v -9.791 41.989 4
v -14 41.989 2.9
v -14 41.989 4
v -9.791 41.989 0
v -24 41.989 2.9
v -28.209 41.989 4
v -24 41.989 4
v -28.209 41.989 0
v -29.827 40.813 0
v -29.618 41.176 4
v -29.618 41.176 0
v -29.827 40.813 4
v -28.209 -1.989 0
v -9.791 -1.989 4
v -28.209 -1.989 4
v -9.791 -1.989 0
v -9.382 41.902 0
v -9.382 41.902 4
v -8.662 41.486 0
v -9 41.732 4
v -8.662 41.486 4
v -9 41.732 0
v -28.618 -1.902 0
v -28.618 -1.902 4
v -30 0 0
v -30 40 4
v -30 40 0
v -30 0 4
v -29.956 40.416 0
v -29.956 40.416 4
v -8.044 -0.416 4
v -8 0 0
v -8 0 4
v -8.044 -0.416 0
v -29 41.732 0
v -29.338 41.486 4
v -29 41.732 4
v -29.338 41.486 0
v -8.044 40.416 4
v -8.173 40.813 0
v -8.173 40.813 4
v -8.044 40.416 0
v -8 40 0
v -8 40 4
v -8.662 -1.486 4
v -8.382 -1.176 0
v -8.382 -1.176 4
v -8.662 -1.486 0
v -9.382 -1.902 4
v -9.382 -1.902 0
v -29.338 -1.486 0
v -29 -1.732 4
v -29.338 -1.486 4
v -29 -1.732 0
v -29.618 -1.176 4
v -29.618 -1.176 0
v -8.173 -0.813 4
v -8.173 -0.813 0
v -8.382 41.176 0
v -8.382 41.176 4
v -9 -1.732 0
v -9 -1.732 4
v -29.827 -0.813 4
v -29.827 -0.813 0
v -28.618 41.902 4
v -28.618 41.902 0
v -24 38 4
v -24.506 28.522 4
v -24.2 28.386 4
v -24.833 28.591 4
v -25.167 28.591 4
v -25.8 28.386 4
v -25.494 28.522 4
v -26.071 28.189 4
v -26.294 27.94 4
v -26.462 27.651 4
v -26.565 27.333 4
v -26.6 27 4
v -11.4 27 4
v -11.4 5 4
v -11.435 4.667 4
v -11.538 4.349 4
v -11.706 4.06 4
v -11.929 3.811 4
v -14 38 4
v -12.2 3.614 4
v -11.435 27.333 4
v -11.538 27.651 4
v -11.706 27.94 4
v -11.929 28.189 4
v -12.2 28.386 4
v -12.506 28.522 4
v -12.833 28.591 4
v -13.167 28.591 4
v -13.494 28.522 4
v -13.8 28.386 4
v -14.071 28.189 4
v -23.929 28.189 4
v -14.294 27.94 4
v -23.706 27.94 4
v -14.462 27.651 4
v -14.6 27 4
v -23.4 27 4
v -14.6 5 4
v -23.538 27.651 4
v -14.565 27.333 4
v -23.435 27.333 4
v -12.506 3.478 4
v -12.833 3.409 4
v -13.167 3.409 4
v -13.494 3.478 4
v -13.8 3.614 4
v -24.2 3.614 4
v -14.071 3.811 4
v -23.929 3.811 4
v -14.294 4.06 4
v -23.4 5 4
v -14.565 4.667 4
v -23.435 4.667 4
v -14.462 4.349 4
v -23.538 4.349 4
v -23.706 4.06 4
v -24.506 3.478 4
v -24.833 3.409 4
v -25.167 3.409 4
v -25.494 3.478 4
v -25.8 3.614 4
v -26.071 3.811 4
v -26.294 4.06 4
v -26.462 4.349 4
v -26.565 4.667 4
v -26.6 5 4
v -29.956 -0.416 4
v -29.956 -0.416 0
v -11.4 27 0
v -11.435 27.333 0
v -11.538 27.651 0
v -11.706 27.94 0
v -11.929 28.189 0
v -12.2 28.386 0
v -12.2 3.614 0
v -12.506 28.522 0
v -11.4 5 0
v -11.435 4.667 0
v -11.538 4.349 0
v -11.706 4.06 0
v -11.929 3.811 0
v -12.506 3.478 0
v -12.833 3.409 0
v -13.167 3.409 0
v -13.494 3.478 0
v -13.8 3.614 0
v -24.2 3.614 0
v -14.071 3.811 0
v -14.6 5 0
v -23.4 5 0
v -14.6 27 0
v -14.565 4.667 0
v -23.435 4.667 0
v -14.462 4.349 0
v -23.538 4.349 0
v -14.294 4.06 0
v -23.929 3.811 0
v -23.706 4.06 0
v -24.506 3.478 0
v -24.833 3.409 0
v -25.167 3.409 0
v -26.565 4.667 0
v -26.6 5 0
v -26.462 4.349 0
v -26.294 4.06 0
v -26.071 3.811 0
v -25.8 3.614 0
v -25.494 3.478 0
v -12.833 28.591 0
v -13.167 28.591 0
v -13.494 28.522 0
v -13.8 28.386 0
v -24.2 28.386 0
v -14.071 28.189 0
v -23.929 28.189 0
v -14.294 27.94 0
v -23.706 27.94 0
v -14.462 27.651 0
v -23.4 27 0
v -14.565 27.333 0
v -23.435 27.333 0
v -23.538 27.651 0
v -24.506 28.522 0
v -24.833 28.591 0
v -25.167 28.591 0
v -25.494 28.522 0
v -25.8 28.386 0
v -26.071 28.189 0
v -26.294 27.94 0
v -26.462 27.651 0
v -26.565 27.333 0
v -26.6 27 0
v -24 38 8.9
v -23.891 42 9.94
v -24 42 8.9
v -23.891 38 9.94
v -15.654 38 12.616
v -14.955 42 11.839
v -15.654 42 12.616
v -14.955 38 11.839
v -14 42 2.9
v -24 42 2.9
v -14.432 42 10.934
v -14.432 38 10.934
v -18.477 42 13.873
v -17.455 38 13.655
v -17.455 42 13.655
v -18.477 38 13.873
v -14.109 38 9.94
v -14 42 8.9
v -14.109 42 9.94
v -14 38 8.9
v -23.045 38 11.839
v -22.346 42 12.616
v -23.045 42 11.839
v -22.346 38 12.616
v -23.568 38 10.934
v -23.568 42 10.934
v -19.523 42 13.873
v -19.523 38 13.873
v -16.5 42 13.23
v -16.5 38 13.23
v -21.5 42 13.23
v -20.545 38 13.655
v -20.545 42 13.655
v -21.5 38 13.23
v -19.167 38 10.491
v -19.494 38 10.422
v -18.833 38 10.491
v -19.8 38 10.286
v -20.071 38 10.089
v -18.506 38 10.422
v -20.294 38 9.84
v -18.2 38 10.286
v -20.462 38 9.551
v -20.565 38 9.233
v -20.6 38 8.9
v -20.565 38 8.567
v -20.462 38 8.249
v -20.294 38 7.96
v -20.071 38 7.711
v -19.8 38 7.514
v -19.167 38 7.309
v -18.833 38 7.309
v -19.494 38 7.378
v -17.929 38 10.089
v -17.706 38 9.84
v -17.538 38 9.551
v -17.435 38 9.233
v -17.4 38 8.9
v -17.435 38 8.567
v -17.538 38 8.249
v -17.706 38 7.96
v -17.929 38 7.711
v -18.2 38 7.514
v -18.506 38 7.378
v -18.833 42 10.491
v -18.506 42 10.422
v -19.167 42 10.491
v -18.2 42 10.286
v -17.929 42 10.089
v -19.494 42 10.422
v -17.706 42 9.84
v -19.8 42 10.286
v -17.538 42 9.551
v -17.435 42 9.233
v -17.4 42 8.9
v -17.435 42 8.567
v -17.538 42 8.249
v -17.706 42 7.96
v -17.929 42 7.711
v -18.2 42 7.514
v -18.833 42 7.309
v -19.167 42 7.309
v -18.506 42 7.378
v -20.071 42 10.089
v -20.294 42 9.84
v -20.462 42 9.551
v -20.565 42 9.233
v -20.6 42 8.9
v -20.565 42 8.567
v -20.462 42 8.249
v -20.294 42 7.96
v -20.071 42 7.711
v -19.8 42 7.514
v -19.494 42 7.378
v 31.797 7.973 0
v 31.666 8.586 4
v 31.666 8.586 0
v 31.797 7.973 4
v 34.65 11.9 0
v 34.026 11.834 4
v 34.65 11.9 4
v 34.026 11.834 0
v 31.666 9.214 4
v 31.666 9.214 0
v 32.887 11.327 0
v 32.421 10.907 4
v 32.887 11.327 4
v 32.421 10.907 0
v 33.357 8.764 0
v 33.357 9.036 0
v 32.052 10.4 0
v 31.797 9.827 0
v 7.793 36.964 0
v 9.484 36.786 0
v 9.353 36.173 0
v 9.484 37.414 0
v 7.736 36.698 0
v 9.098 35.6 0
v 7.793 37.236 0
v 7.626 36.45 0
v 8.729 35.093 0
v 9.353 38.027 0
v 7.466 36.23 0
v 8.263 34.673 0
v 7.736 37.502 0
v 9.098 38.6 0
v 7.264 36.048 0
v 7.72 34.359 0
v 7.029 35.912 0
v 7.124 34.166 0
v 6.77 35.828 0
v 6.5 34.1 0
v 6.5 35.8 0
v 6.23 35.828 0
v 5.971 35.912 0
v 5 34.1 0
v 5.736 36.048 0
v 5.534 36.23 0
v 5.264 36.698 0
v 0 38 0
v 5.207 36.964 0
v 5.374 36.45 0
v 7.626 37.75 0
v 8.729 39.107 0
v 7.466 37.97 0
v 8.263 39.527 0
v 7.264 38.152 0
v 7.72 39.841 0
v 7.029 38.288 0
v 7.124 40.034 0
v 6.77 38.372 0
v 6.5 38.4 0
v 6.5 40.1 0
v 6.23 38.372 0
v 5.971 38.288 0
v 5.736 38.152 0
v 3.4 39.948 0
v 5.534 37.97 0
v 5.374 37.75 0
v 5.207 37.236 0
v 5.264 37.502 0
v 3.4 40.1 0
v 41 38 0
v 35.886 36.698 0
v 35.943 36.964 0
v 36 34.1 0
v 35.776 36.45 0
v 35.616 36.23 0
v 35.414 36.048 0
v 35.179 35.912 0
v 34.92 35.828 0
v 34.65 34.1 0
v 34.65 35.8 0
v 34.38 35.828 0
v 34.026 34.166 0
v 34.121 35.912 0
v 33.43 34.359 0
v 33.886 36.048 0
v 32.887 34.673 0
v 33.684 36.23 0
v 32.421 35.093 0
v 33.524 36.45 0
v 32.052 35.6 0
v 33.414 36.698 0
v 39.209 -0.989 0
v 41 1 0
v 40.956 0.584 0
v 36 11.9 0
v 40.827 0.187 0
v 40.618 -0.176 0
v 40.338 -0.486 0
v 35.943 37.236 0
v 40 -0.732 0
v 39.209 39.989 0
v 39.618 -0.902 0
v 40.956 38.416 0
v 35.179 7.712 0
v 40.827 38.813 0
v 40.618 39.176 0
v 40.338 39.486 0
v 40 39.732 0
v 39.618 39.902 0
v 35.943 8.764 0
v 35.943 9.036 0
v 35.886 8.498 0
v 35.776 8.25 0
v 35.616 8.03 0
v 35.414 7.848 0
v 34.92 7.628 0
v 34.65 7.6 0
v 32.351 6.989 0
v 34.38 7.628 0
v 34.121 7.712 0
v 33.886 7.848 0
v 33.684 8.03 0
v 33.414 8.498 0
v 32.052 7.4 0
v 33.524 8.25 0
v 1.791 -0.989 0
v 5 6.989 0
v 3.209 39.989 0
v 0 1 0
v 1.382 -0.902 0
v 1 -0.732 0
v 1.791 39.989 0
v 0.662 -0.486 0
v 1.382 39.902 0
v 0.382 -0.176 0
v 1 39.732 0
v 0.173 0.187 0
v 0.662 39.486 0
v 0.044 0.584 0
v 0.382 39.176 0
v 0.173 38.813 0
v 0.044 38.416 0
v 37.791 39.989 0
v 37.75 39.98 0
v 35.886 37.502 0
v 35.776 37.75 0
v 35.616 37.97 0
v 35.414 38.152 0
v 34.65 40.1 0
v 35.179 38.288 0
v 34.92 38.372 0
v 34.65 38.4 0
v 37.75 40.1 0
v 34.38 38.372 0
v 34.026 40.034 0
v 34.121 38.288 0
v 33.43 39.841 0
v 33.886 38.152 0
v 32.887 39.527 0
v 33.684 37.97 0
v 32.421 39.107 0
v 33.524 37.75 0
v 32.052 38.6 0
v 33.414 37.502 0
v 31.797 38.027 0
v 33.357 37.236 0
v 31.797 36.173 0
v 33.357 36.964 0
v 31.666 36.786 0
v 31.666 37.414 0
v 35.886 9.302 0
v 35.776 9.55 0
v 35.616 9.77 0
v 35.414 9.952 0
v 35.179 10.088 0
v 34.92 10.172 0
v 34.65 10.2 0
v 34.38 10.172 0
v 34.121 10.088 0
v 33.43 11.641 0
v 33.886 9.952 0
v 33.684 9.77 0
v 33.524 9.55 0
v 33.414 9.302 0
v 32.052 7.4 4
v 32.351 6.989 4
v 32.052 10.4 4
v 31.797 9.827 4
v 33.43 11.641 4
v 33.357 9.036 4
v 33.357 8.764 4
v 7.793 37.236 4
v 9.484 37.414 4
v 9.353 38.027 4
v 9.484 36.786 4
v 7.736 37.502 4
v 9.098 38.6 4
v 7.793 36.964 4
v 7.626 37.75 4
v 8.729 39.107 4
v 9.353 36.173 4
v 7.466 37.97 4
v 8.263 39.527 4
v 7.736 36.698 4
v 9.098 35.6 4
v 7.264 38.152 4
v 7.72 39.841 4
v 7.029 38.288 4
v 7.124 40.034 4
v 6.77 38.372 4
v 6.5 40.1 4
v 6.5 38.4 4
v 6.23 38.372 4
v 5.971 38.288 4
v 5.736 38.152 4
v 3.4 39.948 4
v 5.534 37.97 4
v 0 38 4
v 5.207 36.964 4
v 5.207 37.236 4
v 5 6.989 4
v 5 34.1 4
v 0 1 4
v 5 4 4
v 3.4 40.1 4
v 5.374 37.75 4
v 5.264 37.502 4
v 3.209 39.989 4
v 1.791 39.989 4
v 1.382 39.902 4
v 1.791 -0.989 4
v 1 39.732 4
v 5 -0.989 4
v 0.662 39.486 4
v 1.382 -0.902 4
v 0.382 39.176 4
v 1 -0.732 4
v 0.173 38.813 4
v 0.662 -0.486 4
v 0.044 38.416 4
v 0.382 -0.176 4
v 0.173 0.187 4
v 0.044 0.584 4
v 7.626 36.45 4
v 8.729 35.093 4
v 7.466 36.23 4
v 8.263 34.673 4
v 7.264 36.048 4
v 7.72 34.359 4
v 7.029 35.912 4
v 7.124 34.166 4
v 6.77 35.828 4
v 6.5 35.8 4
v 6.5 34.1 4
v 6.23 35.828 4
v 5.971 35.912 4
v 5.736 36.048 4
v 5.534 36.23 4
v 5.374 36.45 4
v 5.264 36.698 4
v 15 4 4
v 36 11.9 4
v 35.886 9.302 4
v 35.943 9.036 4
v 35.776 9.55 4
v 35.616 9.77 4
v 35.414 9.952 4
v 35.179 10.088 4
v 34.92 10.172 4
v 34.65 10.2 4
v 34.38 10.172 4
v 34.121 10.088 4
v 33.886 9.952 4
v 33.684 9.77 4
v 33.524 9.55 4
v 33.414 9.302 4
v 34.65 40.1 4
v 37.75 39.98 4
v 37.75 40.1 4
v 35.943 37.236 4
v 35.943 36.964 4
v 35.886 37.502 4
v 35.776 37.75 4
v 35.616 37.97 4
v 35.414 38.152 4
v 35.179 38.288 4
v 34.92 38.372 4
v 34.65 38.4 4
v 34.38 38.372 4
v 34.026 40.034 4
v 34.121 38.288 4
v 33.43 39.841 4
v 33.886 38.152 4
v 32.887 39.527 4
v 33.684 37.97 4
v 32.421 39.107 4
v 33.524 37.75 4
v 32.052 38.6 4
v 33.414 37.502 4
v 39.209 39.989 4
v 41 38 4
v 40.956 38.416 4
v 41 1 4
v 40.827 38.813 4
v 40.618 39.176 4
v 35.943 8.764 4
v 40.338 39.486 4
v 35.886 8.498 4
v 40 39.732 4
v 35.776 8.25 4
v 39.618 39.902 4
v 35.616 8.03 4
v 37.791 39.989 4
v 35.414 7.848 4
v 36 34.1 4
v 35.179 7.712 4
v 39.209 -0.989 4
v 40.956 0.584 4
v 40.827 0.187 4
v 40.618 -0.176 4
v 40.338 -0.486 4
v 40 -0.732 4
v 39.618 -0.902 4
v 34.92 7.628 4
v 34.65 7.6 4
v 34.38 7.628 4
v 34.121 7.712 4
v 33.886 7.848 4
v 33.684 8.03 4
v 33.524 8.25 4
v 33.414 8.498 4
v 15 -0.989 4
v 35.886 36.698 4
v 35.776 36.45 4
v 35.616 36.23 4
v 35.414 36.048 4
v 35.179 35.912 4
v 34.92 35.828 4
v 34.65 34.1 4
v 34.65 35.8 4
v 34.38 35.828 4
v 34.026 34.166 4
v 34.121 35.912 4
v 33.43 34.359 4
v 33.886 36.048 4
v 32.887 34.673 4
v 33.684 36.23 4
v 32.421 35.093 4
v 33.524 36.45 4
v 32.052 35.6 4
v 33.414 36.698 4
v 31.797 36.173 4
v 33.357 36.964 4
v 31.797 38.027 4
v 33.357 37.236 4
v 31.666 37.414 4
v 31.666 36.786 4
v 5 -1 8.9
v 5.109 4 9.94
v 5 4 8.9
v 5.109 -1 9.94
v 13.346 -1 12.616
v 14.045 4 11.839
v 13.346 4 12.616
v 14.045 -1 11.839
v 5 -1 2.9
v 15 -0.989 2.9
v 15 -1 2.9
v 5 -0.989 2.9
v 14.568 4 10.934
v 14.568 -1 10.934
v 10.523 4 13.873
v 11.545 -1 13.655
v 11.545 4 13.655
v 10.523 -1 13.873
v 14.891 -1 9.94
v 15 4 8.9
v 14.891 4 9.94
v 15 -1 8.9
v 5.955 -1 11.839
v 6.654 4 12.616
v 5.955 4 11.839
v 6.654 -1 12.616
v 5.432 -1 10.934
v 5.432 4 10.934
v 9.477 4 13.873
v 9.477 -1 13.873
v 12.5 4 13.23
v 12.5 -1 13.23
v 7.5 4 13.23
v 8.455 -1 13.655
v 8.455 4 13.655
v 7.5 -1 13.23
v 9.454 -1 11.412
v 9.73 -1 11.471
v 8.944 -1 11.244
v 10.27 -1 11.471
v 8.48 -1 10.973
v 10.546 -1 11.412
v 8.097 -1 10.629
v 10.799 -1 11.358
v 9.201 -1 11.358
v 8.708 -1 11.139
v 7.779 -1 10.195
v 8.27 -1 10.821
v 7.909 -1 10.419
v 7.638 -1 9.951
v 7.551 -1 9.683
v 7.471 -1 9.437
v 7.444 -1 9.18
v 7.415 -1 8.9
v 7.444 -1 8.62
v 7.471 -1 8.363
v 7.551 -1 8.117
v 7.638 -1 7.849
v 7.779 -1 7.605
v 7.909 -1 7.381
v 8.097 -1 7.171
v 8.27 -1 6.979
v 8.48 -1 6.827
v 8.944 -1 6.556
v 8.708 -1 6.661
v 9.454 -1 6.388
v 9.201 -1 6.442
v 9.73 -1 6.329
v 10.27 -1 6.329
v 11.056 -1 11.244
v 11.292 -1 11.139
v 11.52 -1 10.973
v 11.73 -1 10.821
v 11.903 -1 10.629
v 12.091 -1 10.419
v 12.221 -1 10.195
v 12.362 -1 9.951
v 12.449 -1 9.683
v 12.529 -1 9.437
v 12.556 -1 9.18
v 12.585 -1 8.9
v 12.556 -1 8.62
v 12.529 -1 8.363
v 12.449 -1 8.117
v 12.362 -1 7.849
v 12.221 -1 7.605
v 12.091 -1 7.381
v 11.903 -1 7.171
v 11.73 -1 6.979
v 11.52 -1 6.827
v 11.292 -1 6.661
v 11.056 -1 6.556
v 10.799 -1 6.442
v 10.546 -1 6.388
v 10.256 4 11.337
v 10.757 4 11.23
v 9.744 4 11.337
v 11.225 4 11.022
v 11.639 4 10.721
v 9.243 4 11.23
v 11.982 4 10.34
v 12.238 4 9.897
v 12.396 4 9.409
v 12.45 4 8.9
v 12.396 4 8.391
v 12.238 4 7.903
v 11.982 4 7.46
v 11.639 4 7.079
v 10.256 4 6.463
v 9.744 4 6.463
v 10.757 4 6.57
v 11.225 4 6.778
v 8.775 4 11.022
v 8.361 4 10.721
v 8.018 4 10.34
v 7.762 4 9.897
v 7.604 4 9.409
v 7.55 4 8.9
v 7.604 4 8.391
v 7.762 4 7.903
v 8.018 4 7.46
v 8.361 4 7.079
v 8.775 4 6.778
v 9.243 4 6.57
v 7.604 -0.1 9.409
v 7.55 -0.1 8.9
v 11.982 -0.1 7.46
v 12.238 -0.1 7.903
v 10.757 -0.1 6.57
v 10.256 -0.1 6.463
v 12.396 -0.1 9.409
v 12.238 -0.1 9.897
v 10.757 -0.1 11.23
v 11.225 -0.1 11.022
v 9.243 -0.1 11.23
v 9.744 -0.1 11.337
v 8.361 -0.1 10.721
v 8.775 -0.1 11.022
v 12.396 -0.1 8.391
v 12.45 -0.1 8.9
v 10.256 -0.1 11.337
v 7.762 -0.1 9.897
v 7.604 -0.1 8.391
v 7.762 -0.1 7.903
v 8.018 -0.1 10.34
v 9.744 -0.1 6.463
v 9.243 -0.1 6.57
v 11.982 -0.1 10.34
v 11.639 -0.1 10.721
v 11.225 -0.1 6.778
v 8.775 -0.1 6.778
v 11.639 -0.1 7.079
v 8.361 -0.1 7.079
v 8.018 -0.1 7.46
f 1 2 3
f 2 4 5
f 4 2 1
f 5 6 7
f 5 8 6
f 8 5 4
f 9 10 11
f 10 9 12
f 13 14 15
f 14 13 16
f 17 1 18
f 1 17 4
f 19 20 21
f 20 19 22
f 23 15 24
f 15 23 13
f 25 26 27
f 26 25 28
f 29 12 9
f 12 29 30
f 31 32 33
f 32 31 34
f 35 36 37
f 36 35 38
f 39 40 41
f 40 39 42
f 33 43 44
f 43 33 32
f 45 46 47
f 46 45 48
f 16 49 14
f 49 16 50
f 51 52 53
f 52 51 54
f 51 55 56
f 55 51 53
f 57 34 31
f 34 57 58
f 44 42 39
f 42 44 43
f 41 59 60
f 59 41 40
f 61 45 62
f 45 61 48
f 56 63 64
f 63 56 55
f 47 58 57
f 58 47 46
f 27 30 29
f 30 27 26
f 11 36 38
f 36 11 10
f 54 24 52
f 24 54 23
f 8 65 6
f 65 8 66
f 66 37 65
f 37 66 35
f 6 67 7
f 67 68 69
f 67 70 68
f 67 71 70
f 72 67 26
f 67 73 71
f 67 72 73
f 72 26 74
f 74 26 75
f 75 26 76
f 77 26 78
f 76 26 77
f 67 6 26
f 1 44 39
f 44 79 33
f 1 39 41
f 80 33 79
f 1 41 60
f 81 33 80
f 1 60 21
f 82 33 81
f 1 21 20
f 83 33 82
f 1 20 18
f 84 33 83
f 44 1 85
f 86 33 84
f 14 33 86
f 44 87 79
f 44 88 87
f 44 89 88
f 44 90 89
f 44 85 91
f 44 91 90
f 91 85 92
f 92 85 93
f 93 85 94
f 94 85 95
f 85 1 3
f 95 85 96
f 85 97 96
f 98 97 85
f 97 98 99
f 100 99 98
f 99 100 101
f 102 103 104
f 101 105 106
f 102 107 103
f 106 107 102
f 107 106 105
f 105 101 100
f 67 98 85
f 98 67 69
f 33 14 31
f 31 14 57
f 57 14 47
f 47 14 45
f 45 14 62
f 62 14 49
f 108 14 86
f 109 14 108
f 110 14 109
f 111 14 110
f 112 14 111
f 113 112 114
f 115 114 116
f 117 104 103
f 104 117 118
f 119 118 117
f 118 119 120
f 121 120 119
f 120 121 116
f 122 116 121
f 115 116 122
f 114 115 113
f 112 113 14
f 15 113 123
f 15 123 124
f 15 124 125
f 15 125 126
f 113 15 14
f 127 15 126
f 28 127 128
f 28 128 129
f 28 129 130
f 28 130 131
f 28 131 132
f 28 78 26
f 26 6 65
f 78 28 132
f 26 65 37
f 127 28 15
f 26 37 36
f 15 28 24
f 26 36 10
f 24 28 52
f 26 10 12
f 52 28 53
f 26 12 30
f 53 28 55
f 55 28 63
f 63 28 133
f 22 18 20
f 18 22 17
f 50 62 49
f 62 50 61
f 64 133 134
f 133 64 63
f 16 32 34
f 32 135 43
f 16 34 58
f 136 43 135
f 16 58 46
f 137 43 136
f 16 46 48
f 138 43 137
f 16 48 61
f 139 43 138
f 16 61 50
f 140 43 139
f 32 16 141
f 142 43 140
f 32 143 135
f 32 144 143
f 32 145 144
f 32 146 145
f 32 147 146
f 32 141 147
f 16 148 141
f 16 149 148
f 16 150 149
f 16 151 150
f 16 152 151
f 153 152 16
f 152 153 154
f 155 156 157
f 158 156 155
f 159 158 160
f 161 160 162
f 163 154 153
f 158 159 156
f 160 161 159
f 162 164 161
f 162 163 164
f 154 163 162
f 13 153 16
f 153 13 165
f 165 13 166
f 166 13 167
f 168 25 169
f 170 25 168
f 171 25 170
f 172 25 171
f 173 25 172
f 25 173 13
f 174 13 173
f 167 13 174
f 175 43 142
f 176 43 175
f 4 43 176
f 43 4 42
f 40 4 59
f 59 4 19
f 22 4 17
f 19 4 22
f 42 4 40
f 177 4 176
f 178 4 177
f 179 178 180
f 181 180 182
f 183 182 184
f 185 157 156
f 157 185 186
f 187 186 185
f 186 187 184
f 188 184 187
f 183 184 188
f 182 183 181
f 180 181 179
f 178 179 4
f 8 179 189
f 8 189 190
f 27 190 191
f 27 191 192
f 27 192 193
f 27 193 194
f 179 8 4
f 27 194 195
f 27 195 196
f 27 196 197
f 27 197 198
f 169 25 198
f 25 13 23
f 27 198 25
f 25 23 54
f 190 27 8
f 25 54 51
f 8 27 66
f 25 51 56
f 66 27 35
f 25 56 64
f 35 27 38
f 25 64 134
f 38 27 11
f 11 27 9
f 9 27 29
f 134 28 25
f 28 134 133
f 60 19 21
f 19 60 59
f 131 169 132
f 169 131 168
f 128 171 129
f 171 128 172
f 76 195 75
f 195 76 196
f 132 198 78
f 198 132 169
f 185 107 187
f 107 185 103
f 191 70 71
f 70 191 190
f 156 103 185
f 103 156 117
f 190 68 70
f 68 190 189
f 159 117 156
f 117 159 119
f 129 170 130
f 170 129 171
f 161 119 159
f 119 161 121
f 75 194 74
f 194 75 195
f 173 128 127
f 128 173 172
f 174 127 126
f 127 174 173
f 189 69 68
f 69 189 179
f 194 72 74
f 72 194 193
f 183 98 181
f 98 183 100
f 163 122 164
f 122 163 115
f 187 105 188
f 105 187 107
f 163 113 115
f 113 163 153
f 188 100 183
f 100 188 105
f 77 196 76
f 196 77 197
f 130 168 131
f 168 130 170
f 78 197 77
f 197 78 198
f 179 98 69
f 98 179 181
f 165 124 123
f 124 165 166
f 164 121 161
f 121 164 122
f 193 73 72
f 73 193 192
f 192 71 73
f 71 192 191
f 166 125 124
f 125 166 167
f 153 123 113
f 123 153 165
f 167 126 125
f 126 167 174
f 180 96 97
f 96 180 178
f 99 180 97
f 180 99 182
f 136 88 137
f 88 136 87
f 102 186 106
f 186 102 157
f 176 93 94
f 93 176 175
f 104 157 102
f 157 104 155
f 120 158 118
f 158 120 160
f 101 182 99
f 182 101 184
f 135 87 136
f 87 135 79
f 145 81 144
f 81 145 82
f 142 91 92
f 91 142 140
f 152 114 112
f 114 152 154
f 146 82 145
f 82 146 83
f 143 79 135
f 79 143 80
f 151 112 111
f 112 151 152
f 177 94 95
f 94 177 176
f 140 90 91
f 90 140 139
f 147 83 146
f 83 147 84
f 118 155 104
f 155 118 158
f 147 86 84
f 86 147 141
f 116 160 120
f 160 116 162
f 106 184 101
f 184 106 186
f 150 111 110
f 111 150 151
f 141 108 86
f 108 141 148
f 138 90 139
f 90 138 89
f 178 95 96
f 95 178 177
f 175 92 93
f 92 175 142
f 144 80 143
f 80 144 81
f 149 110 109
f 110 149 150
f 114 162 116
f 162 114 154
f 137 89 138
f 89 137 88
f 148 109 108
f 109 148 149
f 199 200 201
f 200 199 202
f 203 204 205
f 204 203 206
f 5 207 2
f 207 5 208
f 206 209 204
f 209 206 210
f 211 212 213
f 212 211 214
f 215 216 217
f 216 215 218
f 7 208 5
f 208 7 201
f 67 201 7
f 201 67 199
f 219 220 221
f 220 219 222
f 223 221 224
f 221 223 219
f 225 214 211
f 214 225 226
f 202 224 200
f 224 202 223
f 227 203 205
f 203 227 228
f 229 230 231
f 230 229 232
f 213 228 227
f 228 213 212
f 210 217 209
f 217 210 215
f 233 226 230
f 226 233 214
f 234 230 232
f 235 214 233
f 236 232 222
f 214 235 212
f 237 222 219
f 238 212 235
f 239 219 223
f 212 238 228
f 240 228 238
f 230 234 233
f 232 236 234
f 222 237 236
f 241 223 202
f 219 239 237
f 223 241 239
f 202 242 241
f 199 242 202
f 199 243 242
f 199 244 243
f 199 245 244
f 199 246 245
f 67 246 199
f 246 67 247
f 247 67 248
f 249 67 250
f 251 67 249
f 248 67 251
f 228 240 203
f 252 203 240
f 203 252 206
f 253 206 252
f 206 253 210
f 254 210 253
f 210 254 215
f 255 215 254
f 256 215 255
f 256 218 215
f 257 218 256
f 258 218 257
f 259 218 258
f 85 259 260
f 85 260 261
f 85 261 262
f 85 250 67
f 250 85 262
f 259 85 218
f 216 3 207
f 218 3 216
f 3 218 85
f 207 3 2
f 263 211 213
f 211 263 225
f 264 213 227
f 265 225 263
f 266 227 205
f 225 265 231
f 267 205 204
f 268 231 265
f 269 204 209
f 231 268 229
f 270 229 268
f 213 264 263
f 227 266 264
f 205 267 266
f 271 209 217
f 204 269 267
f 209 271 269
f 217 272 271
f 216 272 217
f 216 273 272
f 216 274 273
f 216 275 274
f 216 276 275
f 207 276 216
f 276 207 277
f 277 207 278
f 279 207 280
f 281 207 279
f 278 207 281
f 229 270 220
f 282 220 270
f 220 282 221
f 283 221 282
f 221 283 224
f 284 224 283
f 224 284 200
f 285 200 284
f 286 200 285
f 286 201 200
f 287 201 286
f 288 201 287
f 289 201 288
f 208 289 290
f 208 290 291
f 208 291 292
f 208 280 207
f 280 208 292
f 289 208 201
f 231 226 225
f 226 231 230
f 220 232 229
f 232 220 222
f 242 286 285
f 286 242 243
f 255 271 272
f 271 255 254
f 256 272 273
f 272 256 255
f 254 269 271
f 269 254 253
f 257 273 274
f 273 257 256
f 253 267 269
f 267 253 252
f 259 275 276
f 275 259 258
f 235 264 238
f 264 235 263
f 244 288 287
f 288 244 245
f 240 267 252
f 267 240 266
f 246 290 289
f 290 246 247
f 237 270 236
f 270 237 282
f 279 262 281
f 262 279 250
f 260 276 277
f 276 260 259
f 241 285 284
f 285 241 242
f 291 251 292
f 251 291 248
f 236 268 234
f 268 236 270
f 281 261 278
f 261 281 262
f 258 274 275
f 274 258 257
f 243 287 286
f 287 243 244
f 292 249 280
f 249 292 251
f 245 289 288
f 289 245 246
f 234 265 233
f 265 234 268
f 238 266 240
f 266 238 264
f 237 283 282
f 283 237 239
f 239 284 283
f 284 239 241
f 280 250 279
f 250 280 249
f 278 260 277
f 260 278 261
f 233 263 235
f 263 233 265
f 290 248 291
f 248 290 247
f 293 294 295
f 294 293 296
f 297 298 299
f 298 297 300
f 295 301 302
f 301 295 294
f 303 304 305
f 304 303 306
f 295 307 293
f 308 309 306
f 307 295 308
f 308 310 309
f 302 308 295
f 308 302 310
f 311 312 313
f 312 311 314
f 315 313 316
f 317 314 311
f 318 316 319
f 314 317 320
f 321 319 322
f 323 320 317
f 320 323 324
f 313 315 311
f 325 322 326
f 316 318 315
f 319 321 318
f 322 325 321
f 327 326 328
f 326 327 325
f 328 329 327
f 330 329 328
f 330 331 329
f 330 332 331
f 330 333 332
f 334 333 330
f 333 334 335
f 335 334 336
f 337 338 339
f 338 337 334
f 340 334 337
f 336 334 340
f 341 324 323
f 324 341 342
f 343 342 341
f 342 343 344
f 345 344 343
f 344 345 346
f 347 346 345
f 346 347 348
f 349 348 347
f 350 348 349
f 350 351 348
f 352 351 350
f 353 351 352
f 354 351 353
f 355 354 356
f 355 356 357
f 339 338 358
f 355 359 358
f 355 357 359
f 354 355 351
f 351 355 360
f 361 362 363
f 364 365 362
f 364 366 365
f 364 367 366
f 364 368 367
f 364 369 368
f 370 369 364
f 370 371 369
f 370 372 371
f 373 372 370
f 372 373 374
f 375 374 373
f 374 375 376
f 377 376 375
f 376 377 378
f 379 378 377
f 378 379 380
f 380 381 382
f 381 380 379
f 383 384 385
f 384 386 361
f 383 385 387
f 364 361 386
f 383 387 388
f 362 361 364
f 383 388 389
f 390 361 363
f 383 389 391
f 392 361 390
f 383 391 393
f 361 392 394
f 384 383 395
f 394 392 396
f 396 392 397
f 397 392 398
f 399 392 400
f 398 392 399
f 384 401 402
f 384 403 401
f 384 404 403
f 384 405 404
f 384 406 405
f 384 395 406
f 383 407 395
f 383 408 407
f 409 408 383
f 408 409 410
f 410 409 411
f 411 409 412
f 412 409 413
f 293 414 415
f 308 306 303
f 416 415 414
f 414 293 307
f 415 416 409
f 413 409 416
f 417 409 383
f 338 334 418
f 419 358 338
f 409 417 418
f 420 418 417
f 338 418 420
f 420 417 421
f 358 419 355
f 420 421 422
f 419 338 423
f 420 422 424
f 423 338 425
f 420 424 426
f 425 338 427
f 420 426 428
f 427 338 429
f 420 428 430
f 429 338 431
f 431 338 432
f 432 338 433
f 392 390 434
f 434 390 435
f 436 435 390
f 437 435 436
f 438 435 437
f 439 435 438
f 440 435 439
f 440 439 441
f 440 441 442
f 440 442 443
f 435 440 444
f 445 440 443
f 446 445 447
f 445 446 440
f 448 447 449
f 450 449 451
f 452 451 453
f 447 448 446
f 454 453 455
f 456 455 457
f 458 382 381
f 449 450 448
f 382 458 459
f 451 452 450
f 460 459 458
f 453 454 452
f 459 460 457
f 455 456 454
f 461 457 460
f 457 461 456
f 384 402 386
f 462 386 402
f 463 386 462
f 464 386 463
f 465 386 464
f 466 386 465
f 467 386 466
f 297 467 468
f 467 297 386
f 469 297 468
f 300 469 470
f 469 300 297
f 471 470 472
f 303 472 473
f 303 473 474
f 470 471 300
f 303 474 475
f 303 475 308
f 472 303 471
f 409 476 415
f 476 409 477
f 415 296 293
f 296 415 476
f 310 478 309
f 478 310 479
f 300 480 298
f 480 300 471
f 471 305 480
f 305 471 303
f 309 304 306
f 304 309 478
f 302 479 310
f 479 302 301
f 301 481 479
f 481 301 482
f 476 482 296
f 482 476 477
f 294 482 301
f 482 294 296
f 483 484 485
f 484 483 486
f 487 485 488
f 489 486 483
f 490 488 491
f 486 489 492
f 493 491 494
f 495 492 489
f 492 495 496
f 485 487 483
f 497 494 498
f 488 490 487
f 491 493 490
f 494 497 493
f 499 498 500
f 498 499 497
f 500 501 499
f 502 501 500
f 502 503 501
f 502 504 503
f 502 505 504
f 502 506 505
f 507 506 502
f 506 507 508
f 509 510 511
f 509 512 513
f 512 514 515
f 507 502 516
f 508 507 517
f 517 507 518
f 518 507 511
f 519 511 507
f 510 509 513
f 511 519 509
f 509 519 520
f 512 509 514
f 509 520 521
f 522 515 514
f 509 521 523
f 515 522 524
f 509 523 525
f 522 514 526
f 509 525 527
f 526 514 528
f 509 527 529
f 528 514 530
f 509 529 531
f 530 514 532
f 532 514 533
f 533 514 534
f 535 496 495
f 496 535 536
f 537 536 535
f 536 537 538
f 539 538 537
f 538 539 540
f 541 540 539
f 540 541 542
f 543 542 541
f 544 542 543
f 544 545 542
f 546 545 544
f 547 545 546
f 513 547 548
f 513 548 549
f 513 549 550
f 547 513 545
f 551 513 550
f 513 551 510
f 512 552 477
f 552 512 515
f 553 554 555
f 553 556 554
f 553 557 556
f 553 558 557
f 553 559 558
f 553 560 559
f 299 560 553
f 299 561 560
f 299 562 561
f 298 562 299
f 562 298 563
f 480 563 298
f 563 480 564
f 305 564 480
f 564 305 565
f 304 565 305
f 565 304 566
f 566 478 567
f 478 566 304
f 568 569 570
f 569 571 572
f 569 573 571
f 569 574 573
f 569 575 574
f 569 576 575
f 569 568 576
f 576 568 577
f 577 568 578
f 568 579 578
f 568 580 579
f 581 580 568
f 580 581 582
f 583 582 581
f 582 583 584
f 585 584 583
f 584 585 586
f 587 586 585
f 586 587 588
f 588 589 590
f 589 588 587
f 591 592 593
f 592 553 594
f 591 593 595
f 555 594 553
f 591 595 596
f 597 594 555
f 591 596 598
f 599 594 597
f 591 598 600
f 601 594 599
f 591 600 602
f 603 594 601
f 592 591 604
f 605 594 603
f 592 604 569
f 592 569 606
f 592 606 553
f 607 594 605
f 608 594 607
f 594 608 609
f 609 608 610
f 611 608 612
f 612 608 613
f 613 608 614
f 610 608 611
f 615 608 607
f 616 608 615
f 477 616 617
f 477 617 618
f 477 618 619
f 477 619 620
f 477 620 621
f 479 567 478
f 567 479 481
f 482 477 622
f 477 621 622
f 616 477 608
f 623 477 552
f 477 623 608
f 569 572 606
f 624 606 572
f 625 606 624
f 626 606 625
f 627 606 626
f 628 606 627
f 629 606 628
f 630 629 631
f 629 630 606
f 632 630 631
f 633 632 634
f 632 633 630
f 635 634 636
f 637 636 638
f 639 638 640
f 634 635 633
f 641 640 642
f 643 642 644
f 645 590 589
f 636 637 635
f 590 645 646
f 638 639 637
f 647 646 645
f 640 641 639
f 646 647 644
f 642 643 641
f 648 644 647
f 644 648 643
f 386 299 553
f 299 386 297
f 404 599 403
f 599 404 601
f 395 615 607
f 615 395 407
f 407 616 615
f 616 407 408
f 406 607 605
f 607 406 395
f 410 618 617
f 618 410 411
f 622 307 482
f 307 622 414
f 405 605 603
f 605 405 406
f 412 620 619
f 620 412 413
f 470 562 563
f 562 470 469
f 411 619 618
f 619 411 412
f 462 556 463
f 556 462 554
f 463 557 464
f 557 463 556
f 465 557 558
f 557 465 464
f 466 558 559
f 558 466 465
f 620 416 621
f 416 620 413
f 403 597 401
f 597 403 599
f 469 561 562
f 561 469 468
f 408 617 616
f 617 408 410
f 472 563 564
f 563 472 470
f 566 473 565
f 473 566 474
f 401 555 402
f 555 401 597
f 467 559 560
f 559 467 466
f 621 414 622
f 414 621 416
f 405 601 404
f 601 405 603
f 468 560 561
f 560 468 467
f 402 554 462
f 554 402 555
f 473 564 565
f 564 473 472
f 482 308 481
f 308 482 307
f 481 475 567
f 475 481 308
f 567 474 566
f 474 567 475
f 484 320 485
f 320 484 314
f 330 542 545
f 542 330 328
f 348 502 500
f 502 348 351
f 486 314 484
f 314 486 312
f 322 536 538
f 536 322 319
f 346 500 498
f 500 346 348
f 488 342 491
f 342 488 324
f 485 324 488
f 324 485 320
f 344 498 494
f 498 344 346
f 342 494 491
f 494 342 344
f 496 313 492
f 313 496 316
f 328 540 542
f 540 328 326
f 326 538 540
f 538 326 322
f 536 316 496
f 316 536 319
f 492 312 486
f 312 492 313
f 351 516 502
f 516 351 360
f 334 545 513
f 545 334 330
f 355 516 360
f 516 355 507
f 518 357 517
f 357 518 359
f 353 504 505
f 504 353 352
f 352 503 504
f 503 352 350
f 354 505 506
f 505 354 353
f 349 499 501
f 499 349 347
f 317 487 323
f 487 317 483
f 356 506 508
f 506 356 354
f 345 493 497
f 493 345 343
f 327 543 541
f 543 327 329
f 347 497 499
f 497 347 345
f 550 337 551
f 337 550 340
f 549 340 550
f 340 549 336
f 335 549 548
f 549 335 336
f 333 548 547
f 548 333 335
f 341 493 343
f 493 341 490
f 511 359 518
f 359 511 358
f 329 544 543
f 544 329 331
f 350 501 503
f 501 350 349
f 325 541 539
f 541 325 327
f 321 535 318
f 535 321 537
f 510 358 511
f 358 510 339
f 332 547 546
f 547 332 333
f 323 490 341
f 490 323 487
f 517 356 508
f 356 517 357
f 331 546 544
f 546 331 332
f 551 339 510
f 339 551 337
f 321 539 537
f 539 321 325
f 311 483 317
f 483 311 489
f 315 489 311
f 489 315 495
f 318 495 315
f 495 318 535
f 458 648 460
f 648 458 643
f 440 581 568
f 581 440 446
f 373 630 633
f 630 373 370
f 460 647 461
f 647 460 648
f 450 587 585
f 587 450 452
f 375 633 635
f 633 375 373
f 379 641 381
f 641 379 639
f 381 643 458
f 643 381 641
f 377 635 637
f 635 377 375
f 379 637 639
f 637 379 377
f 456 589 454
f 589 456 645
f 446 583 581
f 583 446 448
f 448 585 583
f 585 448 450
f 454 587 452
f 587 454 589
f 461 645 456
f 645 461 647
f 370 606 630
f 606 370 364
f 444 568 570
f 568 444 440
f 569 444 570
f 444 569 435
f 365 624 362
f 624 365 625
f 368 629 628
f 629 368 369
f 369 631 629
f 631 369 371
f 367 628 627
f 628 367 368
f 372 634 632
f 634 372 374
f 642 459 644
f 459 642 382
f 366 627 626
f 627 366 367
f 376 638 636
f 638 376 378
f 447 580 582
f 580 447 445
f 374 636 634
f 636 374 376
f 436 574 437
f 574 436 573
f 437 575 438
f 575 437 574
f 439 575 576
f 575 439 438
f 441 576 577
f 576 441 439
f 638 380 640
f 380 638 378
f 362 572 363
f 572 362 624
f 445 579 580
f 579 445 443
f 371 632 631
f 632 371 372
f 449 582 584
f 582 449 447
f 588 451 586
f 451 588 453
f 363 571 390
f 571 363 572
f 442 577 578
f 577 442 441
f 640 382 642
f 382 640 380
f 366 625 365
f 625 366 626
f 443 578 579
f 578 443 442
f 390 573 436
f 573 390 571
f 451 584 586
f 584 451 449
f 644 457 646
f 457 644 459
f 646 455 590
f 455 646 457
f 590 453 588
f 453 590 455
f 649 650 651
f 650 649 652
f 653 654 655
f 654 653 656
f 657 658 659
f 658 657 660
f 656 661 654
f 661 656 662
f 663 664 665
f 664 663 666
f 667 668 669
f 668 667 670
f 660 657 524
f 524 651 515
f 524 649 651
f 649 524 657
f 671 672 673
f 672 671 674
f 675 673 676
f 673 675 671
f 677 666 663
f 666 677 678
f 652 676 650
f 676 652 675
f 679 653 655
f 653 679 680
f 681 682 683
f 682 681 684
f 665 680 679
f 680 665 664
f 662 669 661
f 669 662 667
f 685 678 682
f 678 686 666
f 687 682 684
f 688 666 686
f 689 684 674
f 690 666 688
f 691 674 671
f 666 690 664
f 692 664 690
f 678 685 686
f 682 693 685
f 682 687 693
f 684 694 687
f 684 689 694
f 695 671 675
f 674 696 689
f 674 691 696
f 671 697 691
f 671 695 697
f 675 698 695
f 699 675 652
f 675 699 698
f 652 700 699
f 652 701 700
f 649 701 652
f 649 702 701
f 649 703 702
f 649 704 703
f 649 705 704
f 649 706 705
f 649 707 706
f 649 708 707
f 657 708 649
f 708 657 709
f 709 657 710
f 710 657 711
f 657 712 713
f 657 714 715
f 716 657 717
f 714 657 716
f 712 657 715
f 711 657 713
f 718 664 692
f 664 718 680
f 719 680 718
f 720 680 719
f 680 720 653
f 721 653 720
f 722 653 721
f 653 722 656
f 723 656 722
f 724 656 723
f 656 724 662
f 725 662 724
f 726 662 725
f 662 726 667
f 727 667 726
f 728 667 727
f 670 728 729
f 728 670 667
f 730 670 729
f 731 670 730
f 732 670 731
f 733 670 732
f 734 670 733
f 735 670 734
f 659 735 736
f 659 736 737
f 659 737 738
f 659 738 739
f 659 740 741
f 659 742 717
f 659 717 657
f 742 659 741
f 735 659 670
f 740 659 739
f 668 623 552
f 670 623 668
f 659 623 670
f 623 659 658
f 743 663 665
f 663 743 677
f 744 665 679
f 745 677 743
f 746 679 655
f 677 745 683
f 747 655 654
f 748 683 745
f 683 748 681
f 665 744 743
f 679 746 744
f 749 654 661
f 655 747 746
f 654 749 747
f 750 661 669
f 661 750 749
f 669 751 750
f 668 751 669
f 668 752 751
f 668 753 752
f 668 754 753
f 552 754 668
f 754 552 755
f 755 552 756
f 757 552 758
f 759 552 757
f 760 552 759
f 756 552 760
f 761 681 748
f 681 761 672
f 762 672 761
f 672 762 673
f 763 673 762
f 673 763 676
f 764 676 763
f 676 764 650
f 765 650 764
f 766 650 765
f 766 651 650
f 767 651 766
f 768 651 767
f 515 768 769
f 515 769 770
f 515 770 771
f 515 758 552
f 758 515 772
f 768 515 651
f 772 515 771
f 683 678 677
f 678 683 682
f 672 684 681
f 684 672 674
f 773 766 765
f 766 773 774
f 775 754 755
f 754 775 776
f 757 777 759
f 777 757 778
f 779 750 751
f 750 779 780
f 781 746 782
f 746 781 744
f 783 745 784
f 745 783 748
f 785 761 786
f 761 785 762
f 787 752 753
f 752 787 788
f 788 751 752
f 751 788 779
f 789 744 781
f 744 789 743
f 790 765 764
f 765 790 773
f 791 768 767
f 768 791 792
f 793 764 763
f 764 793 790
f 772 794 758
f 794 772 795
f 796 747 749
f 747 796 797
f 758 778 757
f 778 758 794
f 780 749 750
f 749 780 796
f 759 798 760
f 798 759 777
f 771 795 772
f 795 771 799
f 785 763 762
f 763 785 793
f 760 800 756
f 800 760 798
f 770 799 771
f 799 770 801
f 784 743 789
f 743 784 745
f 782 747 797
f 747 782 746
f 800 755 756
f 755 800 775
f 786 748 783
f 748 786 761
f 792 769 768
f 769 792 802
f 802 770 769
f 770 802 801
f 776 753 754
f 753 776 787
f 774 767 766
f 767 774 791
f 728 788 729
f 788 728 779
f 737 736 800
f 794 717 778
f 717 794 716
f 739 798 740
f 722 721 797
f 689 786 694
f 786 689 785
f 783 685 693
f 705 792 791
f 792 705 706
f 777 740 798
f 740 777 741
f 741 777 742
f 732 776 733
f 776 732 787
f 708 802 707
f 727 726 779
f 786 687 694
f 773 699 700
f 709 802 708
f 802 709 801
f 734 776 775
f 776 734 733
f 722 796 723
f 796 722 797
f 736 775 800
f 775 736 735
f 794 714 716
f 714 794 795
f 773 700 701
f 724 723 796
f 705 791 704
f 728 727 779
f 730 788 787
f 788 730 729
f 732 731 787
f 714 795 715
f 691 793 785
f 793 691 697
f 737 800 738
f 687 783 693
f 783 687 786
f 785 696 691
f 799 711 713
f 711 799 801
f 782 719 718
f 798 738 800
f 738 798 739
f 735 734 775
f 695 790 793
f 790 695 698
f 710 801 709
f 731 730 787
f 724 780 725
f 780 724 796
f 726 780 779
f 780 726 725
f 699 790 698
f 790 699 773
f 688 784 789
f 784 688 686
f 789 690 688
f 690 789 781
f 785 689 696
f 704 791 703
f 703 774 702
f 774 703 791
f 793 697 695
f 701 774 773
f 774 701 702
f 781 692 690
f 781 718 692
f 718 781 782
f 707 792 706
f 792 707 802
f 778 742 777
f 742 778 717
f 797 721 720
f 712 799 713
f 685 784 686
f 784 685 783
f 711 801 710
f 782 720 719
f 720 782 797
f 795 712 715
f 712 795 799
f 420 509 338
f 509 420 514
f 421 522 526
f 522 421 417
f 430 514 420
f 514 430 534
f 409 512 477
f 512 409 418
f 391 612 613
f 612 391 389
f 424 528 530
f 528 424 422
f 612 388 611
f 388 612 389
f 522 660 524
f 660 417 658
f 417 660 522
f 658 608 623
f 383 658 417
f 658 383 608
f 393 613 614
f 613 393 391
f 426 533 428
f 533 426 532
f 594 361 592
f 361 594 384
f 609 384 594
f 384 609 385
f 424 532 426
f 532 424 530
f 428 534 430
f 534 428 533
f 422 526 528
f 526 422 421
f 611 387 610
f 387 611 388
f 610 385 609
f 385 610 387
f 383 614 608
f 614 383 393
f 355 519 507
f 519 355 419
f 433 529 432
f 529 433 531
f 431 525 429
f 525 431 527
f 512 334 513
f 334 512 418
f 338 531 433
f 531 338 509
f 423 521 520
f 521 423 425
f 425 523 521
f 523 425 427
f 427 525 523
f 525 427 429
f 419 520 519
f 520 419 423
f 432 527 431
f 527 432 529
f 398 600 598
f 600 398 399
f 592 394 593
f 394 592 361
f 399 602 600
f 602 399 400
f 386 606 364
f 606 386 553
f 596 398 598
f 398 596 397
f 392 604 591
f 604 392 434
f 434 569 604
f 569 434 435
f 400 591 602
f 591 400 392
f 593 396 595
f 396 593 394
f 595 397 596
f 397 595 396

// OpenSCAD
// width=35;
// height=35;

$fn=30;

// heat set M3 nut is 5mm diameter and 4mm thick/high

translate([-30,30,0]) frameMount();
cameraMount();

module cameraMount(depth=4) {
   translate([0,-1,0]) plate(width=41,height=8,depth=depth);
   translate([0,0,0]) plate(width=5,height=40,depth=depth);
   translate([36,0,0]) plate(width=5,height=40,depth=depth);

   translate([34.65,8.9,0])rotate([0,0,-90]) smallHole();
   translate([6.5,37.1,0]) rotate([0,0,90]) smallHole();
   translate([34.65,37.1,0])rotate([0,0,-90]) smallHole();

   translate([10,4,5+depth-0.1]) rotate([90,0,0]) difference() {
      hull() {
         cylinder(d=10,h=5);
         translate([-5,-6,0]) cube([10,1,5]);
      }
      translate([0,0,-1]) cylinder(d=4.9,h=10);
      translate([0,0,4.1]) cylinder(d1=4.9,d2=5.5,h=2);
   }
}

module smallHole() {
   difference() {
      union() {
         cylinder(h=4,r=3);
         translate([-3,0,0]) cube([6,3.1,4]);
      }
      translate([0,0,-0.05]) cylinder(h=4.1,r=1.3);
   }
}

/* plate() -- base of the mounting plate
 */
module plate(width=35,height=35,depth=4) {
   hull() {
      translate([2,2,0]) cylinder(r=2,h=depth);
      translate([width-2,2,0]) cylinder(r=2,h=depth);
      translate([2,height-2,0]) cylinder(r=2,h=depth);
      translate([width-2,height-2,0]) cylinder(r=2,h=depth);
   }
}

module frameMount(depth=4) {
   difference() {
      hull() {
         translate([2,10,0]) cylinder(r=2,h=depth);
         translate([2,-30,0]) cylinder(r=2,h=depth);
         translate([20,-30,0]) cylinder(r=2,h=depth);
         translate([20,10,0]) cylinder(r=2,h=depth);
      }
      hull() {
         translate([5,-3,-1]) cylinder(d=3.2, h=depth+2);
         translate([5,-25,-1]) cylinder(d=3.2, h=depth+2);
      }
      hull() {
         translate([17,-3,-1]) cylinder(d=3.2, h=depth+2);
         translate([17,-25,-1]) cylinder(d=3.2, h=depth+2);
      }
   }

   translate([11,12,5+depth-0.1]) rotate([90,0,0]) difference() {
      hull() {
         cylinder(d=10,h=4);
         translate([-5,-6,0]) cube([10,1,4]);
      }
      translate([0,0,-1]) cylinder(d=3.2,h=10);
   }
}
